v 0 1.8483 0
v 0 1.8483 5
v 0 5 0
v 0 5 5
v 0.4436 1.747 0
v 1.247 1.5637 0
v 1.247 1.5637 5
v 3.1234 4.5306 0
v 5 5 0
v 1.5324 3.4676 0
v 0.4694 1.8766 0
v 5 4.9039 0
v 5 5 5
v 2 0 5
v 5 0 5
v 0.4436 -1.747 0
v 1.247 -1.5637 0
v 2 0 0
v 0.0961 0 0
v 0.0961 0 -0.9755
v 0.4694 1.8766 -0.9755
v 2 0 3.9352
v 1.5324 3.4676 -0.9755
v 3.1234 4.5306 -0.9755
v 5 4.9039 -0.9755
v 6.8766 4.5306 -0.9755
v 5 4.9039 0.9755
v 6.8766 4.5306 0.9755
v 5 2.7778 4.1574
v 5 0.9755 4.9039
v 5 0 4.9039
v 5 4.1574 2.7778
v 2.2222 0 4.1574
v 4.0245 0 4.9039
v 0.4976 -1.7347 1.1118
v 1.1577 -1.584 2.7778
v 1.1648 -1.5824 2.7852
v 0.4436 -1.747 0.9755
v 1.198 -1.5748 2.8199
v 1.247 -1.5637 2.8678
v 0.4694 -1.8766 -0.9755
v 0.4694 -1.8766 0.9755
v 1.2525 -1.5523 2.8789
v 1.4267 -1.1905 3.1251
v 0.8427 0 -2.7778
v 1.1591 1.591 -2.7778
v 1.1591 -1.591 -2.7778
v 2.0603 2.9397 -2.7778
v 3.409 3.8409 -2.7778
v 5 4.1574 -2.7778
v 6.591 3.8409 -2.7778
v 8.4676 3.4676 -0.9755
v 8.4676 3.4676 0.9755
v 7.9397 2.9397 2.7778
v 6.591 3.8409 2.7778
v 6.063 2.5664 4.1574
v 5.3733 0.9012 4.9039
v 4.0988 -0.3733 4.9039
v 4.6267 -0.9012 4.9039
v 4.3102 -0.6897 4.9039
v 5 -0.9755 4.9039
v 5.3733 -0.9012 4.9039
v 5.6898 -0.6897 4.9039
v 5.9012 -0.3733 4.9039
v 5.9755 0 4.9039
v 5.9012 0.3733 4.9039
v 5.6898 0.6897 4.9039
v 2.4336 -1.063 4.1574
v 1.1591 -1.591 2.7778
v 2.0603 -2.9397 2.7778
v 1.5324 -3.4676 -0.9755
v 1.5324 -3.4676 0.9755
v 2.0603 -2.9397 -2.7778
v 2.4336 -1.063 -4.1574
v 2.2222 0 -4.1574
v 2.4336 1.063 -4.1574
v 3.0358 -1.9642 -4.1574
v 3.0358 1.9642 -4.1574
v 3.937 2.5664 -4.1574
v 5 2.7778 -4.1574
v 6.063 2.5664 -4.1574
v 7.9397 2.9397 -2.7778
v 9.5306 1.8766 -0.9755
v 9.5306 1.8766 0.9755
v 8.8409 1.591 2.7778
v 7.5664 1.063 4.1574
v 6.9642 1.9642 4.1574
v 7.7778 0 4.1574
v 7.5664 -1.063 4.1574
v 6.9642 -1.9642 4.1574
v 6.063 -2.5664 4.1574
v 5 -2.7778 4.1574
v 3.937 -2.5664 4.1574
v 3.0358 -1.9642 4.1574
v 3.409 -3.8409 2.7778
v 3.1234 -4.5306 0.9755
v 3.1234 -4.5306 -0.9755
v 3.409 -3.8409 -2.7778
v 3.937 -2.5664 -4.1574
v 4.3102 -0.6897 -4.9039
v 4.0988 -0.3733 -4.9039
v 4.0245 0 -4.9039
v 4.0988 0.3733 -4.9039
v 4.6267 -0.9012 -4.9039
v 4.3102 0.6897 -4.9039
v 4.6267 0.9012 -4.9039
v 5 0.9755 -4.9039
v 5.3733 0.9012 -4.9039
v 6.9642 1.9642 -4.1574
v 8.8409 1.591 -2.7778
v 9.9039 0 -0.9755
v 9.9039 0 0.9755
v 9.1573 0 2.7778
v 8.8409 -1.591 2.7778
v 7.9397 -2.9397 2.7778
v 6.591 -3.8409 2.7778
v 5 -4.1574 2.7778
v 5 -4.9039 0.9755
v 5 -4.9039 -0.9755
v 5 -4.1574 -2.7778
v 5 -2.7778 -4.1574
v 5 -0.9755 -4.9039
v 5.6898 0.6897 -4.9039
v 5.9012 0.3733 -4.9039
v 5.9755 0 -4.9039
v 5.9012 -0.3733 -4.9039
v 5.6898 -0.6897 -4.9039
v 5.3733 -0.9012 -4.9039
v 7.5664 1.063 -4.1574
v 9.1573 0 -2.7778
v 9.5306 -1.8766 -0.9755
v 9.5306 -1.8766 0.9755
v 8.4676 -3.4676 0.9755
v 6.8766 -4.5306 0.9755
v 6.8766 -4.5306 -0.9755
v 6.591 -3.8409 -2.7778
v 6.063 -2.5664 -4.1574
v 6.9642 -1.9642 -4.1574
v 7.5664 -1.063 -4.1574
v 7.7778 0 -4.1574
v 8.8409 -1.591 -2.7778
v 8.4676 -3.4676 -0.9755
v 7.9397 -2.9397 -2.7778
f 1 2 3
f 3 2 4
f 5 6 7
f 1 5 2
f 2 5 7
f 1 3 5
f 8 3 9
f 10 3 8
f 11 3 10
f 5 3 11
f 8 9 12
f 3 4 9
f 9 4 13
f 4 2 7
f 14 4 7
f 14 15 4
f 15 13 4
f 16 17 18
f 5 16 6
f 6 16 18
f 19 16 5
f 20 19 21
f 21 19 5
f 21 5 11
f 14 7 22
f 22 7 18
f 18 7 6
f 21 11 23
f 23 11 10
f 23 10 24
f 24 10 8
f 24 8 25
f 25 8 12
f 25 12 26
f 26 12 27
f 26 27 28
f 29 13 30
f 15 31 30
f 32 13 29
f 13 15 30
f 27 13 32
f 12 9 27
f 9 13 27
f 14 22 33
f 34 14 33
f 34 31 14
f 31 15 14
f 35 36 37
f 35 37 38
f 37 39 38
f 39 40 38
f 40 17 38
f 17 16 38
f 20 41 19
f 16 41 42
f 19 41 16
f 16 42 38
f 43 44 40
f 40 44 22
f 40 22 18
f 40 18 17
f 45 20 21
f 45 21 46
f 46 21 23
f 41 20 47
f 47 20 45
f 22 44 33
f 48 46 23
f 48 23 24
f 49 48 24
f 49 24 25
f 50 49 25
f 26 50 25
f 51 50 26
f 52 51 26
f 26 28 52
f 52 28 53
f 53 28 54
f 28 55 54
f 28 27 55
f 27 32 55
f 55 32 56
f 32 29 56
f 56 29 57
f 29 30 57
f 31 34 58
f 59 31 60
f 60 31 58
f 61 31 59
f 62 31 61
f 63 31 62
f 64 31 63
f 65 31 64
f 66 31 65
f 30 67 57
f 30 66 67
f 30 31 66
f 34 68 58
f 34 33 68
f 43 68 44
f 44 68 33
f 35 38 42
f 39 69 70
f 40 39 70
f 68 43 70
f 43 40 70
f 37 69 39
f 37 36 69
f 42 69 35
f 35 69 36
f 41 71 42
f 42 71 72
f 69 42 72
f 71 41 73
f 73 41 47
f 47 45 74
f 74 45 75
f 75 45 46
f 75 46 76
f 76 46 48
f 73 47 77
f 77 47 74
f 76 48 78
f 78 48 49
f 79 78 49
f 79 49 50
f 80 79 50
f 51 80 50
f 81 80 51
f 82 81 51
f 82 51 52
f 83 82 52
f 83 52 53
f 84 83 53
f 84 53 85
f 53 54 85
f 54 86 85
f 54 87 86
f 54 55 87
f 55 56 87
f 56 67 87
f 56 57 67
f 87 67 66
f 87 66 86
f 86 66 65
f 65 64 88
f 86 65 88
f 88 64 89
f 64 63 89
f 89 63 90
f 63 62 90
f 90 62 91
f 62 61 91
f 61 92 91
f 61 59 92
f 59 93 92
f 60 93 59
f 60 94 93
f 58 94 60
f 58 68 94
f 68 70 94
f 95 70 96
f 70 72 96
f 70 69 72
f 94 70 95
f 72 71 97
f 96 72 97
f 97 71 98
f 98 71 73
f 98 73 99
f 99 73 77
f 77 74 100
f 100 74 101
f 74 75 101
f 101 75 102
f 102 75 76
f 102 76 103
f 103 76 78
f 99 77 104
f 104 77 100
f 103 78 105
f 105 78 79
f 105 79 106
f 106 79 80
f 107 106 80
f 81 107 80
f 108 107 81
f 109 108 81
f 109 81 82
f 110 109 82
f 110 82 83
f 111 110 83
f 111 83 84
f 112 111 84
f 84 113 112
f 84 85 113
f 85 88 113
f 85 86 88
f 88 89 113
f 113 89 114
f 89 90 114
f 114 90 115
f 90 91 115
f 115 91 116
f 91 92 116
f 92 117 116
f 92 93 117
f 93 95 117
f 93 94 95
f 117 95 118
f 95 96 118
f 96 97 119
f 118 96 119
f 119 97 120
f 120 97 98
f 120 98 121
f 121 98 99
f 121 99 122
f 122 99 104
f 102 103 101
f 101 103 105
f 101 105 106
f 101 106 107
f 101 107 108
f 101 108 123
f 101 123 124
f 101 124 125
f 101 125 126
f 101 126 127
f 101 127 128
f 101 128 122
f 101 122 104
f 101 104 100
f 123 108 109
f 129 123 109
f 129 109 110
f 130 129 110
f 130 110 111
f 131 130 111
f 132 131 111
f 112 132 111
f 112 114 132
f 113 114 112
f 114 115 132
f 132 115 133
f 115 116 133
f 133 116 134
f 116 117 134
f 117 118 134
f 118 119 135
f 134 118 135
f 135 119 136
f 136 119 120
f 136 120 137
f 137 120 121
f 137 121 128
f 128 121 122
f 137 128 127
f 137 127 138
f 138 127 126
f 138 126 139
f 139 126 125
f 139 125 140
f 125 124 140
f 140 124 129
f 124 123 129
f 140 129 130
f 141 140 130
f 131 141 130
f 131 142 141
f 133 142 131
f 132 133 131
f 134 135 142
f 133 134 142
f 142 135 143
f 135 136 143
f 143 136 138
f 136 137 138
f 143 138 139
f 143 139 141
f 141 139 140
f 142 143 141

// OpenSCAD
difference() {
	union() {
		cube(size = 5);
		translate(v = [5, 0, 0]) {
			sphere(r = 5);
		}
	}
	cylinder(h = 6, r = 2);
}
